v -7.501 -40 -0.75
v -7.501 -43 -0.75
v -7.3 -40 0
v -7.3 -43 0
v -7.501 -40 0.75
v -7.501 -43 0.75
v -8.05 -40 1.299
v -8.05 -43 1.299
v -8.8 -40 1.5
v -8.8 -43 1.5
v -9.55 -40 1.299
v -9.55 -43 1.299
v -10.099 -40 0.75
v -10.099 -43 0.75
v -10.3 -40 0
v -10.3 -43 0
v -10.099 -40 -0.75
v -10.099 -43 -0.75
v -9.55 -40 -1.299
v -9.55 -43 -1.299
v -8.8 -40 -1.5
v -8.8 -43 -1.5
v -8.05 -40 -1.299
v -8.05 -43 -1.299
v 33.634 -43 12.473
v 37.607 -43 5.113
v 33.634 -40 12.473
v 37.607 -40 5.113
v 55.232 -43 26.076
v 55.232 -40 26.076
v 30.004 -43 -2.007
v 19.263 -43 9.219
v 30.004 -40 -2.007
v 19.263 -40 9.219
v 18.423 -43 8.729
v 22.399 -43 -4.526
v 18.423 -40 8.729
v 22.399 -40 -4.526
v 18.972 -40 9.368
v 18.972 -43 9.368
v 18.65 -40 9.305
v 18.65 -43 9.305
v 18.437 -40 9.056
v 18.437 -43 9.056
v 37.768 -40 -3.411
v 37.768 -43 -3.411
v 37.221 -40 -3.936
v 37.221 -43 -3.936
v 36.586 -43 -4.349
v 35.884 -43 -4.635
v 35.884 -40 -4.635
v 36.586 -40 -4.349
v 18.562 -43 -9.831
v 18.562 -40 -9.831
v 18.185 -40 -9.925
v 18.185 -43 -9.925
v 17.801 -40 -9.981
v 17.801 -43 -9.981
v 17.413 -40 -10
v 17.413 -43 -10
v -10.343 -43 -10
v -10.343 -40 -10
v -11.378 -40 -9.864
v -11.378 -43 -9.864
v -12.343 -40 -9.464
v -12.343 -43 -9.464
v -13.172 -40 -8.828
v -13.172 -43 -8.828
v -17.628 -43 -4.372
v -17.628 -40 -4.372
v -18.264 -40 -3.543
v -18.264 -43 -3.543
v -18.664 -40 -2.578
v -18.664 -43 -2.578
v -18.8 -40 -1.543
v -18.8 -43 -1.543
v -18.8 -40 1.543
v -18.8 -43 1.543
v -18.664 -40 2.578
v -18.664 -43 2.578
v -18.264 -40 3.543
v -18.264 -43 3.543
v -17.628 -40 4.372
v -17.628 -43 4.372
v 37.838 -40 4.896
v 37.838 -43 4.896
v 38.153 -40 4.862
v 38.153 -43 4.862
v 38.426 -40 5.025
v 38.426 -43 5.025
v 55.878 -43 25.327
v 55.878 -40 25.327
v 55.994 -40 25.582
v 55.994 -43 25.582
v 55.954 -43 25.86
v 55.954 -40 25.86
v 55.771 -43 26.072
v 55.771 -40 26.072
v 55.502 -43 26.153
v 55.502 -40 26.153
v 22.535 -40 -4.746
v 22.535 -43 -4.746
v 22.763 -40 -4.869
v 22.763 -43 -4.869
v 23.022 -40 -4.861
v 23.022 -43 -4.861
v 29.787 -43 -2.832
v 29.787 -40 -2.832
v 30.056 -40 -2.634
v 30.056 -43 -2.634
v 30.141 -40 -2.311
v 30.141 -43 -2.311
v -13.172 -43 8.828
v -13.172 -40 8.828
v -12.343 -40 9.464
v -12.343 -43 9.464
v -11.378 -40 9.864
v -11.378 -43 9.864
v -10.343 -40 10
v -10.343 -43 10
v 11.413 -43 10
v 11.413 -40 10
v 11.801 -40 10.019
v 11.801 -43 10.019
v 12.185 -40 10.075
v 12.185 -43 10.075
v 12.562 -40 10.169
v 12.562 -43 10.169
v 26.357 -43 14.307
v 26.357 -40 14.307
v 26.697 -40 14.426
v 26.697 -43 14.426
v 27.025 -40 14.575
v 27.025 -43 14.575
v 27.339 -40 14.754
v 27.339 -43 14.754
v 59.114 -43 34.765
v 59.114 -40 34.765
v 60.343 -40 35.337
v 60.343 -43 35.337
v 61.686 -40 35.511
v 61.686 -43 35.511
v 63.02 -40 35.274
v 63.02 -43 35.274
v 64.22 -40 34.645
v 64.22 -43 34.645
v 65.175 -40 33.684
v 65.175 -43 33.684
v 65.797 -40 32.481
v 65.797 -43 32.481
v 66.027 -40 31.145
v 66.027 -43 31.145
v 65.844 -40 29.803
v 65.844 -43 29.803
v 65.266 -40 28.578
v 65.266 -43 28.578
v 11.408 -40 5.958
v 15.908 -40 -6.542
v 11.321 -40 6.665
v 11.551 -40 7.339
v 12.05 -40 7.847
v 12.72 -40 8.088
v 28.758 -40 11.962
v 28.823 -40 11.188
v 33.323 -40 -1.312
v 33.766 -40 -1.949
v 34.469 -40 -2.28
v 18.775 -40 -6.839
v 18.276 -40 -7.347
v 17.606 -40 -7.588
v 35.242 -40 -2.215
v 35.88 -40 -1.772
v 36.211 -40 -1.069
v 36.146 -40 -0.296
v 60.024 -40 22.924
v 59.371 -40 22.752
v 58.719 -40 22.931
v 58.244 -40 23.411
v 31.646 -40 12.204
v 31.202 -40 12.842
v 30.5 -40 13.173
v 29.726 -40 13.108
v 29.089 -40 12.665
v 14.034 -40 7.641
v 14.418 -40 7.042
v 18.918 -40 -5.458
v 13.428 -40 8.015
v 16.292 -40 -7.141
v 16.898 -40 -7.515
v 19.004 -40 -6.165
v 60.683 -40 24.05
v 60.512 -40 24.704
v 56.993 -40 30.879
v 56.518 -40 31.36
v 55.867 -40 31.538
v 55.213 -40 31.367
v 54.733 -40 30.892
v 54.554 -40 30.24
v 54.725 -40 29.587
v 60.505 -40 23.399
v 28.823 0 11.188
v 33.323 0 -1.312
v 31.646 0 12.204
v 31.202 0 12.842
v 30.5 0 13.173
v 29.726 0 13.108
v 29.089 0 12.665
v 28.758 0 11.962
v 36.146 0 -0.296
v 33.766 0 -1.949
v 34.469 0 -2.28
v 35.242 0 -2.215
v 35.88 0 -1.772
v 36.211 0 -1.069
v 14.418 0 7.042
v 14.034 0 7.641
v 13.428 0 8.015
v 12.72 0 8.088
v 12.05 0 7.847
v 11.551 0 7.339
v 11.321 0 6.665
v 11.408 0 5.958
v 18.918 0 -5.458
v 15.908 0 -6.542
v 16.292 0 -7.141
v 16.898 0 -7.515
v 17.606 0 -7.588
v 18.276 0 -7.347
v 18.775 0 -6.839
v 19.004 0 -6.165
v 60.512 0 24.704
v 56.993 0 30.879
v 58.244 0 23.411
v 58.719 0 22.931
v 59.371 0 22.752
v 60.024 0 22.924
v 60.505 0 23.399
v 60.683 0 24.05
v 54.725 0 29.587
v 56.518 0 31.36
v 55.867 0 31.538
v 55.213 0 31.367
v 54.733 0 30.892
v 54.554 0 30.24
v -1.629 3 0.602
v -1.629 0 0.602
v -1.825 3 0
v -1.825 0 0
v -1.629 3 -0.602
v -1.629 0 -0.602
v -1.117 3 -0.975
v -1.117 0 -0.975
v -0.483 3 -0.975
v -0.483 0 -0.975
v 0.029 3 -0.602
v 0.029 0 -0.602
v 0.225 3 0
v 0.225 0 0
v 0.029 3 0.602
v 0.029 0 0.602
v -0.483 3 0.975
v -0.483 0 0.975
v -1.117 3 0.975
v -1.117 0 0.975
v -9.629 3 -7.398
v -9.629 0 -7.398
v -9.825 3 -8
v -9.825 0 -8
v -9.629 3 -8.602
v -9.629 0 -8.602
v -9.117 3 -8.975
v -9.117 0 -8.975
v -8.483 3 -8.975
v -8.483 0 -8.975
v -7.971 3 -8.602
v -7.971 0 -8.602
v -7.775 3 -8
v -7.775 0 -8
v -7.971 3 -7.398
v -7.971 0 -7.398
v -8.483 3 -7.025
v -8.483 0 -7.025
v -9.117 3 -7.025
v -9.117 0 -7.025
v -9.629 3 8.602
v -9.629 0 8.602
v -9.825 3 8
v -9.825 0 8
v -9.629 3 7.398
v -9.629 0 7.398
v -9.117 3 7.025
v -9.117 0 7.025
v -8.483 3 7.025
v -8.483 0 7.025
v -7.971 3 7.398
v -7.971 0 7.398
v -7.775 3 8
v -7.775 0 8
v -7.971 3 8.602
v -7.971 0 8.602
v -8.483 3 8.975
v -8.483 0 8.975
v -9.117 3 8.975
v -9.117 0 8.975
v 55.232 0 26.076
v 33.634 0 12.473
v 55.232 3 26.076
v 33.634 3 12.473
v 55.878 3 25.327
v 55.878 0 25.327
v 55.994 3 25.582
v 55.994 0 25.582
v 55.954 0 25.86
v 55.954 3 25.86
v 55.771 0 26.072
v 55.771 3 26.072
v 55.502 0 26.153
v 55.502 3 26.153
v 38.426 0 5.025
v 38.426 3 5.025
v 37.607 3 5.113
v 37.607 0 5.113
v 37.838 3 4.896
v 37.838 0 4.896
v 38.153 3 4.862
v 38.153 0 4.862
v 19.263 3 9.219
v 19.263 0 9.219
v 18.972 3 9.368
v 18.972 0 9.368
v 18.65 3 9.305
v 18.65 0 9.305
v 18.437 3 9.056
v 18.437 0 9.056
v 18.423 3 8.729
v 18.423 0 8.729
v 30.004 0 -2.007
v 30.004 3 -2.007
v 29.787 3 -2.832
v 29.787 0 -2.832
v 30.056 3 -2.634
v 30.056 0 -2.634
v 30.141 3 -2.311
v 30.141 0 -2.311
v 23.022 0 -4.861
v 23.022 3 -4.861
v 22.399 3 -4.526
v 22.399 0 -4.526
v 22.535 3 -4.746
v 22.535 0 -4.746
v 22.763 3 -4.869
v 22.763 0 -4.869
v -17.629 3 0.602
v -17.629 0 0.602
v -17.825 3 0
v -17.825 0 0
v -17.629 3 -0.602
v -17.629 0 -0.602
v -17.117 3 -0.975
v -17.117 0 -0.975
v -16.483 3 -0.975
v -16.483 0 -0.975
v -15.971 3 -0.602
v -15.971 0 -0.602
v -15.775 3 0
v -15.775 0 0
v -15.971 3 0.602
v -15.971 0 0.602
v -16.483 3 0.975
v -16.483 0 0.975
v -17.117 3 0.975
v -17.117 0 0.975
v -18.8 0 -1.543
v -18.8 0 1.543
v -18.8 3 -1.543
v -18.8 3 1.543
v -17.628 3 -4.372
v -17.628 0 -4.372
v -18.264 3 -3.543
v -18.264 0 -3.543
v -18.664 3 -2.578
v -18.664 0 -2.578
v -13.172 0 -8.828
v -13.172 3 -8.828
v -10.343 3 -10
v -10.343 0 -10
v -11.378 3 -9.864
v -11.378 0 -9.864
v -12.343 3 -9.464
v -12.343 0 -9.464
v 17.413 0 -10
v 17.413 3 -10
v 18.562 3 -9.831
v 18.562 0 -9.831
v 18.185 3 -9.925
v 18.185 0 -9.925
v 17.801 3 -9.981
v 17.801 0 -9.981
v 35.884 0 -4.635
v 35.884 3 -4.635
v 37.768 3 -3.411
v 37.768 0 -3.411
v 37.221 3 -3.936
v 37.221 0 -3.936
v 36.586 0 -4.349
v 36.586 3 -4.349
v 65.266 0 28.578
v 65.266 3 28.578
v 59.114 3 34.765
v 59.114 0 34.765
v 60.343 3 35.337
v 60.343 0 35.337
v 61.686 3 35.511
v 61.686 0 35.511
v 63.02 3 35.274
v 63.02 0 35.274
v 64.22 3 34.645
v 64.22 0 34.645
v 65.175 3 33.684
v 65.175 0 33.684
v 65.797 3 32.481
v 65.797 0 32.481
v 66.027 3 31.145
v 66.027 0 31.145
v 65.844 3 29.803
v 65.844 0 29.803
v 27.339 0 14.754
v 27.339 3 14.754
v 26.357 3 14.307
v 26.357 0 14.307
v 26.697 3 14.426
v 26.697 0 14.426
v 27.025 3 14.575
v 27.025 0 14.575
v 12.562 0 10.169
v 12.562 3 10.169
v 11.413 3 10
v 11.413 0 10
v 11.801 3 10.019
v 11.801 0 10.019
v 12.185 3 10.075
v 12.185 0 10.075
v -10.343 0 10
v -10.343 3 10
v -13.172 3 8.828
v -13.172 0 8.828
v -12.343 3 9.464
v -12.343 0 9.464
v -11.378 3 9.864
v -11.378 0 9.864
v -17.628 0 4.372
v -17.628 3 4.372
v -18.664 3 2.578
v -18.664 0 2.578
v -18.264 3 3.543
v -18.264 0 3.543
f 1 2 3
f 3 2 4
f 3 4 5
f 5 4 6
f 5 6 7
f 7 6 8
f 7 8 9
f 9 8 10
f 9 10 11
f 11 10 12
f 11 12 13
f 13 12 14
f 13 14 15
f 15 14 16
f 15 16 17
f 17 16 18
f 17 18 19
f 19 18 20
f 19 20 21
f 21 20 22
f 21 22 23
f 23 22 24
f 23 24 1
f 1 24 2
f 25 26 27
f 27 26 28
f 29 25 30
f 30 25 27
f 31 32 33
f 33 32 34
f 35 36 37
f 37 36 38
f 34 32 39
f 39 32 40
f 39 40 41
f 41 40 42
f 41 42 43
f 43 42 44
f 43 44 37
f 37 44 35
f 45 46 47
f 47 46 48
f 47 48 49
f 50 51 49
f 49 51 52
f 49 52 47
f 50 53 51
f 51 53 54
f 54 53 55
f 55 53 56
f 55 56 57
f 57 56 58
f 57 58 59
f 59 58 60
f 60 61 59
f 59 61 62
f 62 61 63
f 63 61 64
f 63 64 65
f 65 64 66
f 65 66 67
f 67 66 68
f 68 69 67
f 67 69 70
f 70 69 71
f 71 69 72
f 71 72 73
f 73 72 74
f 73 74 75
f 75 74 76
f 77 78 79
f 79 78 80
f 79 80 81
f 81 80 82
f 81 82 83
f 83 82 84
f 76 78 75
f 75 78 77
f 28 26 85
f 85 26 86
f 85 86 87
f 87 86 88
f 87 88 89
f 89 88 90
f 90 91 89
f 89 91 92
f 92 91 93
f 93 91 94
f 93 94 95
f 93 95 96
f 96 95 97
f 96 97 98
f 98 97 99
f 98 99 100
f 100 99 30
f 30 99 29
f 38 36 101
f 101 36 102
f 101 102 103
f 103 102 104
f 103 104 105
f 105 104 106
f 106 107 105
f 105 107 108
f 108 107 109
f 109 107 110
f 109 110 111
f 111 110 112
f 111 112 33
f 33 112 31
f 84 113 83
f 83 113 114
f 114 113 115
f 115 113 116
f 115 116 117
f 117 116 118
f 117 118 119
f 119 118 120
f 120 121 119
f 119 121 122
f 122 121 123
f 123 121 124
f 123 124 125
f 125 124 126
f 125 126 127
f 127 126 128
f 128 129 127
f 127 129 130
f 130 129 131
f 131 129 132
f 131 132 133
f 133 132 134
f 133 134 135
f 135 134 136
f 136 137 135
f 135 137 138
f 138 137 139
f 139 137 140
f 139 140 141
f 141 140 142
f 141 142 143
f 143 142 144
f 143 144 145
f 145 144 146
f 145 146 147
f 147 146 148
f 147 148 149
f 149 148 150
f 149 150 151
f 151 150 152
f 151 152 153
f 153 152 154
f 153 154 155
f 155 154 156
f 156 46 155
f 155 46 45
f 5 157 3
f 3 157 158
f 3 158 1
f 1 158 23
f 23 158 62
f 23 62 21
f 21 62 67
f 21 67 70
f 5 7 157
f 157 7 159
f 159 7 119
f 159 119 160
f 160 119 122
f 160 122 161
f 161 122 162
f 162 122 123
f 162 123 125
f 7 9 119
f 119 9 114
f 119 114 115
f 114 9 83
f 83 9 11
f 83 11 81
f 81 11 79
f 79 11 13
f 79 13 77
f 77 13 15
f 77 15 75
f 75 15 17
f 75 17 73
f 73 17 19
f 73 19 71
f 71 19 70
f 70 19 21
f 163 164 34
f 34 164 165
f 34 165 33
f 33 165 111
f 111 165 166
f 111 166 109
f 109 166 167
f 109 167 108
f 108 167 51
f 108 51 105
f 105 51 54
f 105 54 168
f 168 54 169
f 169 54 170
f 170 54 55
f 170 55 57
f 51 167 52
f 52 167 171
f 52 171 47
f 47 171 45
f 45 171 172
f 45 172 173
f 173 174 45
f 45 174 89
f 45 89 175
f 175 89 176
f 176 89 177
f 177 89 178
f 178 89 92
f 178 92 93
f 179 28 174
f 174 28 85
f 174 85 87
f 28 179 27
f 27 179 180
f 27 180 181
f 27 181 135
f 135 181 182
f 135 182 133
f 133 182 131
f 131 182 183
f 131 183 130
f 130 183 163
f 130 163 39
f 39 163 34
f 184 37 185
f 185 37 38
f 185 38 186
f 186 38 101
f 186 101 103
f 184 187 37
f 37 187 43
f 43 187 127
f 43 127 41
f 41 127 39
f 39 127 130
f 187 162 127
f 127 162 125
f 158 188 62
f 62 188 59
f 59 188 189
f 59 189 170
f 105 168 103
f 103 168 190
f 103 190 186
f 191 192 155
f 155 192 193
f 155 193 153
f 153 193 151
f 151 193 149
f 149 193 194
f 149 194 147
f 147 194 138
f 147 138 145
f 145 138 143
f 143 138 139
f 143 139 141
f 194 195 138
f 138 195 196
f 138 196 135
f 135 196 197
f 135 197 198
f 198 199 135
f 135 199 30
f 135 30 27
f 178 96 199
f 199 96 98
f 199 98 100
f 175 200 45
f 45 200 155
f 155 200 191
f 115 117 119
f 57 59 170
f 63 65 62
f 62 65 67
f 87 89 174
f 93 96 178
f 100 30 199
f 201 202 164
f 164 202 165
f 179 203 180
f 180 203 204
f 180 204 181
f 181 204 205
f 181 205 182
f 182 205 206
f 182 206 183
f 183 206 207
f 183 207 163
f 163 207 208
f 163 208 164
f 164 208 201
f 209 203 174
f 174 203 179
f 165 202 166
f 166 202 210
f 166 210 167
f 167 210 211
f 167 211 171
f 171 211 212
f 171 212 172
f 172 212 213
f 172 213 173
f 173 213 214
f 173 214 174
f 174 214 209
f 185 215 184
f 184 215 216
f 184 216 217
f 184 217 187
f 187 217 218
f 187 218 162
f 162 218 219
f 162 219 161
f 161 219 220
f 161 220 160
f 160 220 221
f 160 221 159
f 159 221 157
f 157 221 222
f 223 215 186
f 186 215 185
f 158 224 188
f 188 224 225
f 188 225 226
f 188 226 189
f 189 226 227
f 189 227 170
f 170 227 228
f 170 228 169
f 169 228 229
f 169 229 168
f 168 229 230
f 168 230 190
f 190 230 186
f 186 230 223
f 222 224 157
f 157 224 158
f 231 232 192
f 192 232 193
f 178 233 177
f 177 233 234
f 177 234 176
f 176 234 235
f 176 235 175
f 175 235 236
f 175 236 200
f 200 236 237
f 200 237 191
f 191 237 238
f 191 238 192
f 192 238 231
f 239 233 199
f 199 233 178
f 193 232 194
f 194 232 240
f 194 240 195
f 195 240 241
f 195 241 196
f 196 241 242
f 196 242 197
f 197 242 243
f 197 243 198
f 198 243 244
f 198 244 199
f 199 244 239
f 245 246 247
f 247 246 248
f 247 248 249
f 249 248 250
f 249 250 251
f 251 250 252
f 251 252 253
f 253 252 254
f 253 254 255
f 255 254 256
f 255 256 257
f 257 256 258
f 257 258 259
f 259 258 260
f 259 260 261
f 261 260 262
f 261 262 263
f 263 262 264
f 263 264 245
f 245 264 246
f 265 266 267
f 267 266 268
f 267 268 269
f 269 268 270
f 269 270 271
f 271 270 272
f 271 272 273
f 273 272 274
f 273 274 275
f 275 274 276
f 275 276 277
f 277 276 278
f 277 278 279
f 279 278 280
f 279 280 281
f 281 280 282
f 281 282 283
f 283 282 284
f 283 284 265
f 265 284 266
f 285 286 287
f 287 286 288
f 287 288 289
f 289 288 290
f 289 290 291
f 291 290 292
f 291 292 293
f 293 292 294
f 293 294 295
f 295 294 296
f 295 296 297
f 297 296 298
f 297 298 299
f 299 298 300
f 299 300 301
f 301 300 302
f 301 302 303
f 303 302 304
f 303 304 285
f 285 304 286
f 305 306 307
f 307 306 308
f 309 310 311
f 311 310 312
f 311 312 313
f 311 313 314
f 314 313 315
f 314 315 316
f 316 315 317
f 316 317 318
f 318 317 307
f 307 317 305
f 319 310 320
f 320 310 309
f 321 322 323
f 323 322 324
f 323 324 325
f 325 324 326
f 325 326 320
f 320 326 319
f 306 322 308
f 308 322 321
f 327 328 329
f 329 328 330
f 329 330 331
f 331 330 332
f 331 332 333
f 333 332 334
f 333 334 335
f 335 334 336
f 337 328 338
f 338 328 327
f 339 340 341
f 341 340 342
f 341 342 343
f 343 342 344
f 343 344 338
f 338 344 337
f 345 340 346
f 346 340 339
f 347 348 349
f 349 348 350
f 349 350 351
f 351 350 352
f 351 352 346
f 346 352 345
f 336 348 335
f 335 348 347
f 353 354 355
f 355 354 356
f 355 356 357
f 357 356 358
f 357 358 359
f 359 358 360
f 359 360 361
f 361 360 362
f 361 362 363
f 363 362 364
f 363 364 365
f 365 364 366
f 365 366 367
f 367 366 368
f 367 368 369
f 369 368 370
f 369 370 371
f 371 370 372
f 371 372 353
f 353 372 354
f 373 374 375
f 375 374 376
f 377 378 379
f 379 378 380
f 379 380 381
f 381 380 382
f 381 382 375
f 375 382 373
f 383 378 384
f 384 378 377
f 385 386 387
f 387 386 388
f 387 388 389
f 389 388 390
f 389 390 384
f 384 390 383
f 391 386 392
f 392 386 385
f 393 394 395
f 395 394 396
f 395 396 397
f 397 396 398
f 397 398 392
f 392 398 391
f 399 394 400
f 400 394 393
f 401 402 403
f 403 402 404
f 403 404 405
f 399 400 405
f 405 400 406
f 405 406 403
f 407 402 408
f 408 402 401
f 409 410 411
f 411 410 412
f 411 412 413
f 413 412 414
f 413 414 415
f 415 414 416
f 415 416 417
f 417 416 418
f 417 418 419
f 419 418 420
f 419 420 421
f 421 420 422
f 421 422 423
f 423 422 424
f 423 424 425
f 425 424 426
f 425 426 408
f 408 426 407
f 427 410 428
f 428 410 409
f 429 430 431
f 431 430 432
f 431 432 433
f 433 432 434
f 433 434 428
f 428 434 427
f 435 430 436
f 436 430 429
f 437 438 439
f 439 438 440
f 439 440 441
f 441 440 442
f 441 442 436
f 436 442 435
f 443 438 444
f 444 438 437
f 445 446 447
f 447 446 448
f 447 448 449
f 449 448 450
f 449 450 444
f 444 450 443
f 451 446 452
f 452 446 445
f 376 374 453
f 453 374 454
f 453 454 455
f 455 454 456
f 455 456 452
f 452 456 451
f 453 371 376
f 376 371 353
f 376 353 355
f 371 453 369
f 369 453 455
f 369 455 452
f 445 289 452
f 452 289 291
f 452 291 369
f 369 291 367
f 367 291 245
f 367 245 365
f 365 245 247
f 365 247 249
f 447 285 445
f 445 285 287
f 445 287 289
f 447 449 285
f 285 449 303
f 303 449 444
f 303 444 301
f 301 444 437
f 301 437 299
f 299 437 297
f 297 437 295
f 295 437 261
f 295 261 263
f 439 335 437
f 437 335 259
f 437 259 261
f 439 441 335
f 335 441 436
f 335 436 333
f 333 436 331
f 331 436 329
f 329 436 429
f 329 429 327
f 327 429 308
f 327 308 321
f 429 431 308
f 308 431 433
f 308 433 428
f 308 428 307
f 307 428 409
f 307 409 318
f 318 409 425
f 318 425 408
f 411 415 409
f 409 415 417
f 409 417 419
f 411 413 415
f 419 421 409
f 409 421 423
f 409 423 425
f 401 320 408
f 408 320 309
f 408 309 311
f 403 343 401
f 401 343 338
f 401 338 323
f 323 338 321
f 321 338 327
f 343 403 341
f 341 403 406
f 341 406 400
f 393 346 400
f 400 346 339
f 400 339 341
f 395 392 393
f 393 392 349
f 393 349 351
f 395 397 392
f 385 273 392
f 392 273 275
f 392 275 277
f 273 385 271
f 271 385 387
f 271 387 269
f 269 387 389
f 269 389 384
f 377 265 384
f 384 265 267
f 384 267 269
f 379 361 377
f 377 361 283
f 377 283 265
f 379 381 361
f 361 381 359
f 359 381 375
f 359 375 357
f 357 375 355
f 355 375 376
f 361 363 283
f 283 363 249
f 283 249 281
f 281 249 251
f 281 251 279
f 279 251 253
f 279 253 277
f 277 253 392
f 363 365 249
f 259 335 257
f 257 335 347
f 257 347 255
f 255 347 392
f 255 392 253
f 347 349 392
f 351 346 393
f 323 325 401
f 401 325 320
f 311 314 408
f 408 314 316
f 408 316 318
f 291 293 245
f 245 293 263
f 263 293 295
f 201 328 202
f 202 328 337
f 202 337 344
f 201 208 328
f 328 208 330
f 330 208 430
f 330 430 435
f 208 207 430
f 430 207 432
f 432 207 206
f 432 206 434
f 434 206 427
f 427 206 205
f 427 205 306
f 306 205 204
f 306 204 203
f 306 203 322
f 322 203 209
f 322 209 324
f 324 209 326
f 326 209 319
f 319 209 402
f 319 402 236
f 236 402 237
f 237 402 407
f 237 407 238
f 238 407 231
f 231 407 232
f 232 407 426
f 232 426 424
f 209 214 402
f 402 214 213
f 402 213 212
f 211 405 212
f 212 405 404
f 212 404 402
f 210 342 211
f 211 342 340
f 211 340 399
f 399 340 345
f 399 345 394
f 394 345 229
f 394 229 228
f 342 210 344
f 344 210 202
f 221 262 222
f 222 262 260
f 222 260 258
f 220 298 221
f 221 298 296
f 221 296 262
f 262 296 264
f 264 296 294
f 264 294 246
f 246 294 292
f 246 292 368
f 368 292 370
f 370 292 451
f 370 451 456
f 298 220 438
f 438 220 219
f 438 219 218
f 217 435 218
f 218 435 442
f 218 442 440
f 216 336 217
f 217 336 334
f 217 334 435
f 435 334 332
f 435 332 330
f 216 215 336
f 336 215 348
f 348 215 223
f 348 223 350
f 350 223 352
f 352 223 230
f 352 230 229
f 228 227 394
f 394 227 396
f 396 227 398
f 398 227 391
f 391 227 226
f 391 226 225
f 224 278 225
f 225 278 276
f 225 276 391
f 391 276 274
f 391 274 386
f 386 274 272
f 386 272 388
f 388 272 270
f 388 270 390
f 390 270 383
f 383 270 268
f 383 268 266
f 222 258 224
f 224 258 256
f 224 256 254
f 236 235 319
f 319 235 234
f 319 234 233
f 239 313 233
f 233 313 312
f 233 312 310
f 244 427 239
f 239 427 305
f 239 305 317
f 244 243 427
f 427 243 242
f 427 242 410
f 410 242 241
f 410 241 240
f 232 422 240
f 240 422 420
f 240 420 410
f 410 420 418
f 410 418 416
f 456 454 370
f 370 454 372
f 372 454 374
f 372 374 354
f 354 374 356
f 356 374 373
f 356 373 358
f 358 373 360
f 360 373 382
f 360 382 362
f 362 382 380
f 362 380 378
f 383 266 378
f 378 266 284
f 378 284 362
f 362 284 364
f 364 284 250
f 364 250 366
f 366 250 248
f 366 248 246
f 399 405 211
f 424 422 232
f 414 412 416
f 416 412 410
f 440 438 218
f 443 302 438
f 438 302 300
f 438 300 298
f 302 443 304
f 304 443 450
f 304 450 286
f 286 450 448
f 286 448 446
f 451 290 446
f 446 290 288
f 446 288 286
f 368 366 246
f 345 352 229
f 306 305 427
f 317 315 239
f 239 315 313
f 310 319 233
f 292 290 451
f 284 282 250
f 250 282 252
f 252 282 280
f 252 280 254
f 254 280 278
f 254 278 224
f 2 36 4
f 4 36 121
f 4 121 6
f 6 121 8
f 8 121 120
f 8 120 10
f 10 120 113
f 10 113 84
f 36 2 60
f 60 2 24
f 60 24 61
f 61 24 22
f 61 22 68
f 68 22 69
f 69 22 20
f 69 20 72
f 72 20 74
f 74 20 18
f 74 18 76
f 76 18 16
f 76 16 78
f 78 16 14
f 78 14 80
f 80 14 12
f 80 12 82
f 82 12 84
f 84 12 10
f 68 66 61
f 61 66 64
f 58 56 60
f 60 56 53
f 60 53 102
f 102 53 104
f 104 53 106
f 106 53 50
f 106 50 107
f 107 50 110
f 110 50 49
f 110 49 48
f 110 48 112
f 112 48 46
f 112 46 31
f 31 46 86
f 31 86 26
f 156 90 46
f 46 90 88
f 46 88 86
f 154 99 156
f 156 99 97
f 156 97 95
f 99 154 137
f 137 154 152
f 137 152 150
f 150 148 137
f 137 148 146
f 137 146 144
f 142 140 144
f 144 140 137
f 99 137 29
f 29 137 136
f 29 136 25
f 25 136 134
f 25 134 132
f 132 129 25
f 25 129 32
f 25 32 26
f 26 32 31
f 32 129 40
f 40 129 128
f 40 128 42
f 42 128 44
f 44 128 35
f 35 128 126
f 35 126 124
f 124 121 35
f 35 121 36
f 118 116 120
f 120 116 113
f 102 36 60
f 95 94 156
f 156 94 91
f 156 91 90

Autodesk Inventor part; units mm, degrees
ref_plane "YZ Plane" through (0, 0, 0) normal (1, 0, 0) x (0, 1, 0)
ref_plane "XZ Plane" through (0, 0, 0) normal (0, 1, 0) x (-1, 0, 0)
ref_plane "XY Plane" through (0, 0, 0) normal (0, 0, 1) x (1, 0, 0)
sketch "Sketch1" plane through (0, 0, 0) normal (0, 1, 0) x (-1, 0, 0)
  line L0 (-11.4129, 10) -> (10.3431, 10)
  line L1 (20, 2) -> (20, -2)
  line L2 (10.3431, -10) -> (-17.4129, -10)
  line L3 (-20, -10) -> (-20, 10)
  line L4 (20, -10) -> (-20, 10) construction
  line L5 (20, 10) -> (-20, -10) construction
  line L6 (13.1716, -8.8284) -> (17.6284, -4.3716)
  line L7 (13.1716, 8.8284) -> (17.6284, 4.3716)
  line L8 (18.8, 1.5431) -> (18.8, -1.5431)
  arc A0 (18.8, 1.5431) -> (17.6284, 4.3716) centre (14.8, 1.5431) ccw
  arc A1 (17.6284, -4.3716) -> (18.8, -1.5431) centre (14.8, -1.5431) ccw
  arc A2 (13.1716, 8.8284) -> (10.3431, 10) centre (10.3431, 6) ccw
  arc A3 (10.3431, -10) -> (13.1716, -8.8284) centre (10.3431, -6) ccw
  line L9 (-18, -10) -> (-12, 10)
  line L10 (-12.5623, 10.1687) -> (-26.3566, 14.307)
  line L11 (-33.8781, 16.5634) -> (-39.8781, -3.4366)
  line L12 (-35.8836, -4.6349) -> (-18.5623, -9.8313)
  line L13 (-26.8781, 14.4634) -> (-37.0046, -4.2986)
  line L14 (-27.3388, 14.7536) -> (-59.1142, 34.7654)
  line L15 (-37.7675, -3.4111) -> (-65.2661, 28.5779)
  arc A4 (-12.5623, 10.1687) -> (-11.4129, 10) centre (-11.4129, 14) ccw
  arc A5 (-18.5623, -9.8313) -> (-17.4129, -10) centre (-17.4129, -6) ccw
  arc A6 (-27.3388, 14.7536) -> (-26.3566, 14.307) centre (-25.2072, 18.1383) ccw
  arc A7 (-37.7675, -3.4111) -> (-35.8836, -4.6349) centre (-34.7342, -0.8036) ccw
  arc A8 (-59.1142, 34.7654) -> (-65.2661, 28.5779) centre (-61.5814, 31.0663) ccw
  line L16 (18.8, 0) -> (8.8, 0)
  circle A9 centre (0.8, 0) radius 1.025
  circle A10 centre (8.8, -8) radius 1.025
  circle A11 centre (16.8, 0) radius 1.025
  circle A12 centre (8.8, 8) radius 1.025
  line L17 (-23.0219, -4.861) -> (-29.7868, -2.8316)
  line L18 (-22.3993, -4.5258) -> (-18.4228, 8.7292)
  line L19 (-19.263, 9.2186) -> (-30.0044, -2.007)
  arc A13 (-23.0219, -4.861) -> (-22.3993, -4.5258) centre (-22.8782, -4.3821) ccw
  arc A14 (-30.0044, -2.007) -> (-29.7868, -2.8316) centre (-29.6432, -2.3526) ccw
  arc A15 (-18.4228, 8.7292) -> (-19.263, 9.2186) centre (-18.9017, 8.8729) ccw
  line L20 (-37.6066, 5.1132) -> (-33.634, 12.4734)
  line L21 (-33.634, 12.4734) -> (-55.2323, 26.0758)
  line L22 (-55.8779, 25.3268) -> (-38.4257, 5.0247)
  arc A16 (-38.4257, 5.0247) -> (-37.6066, 5.1132) centre (-38.0466, 5.3506) ccw
  arc A17 (-55.2323, 26.0758) -> (-55.8779, 25.3268) centre (-55.4988, 25.6528) ccw
  point P0 (0, 0)
  point P1 (0, 0)
  point P2 (12, -10)
  point P3 (12, 10)
  point P4 (20, 10)
  point P5 (18.8, 3.2)
  point P6 (18.8, -3.2)
  point P7 (-37.9518, 4.4734)
  point P8 (-35.6203, 8.7933)
  dimension "d0" = 40
  dimension "d1" = 20
  dimension "d32" = 8
  dimension "d33" = 8
  dimension "d34" = 8
  dimension "d35" = 8
  dimension "d43" = 1.2
  dimension "d46" = 4
  dimension "d47" = 2
  dimension "d48" = 8
  dimension "d49" = 3
  dimension "d50" = 7
  dimension "d51" = 43.3541
  dimension "d52" = 32.617
  dimension "d53" = 4
  dimension "d54" = 10
  dimension "d55" = 2.05
  dimension "d56" = 8
  dimension "d59" = 360
  dimension "d79" = 0.5
  dimension "d80" = 8
  dimension "d81" = 5
  dimension "d82" = 5
  dimension "d83" = 0.5
extrude "Extrusion1" add sketch "Sketch1" along normal blind 3
sketch "Sketch8" plane through (0, 0, 0) normal (0, -1, 0) x (1, 0, 0)
  arc A0 (17.4129, -10) -> (18.5623, -9.8313) centre (17.4129, -6) ccw projected
  line L0 (-13.1716, -8.8284) -> (-17.6284, -4.3716) projected
  arc A1 (35.8836, -4.6349) -> (37.7675, -3.4111) centre (34.7342, -0.8036) ccw projected
  circle A2 centre (34.7342, -0.8036) radius 1.5
  circle A3 centre (30.2342, 11.6964) radius 1.5
  line L1 (65.2661, 28.5779) -> (37.7675, -3.4111) projected
  line L2 (27.3388, 14.7536) -> (59.1142, 34.7654) projected
  line L3 (15.9075, -6.542) -> (11.4075, 5.958)
  line L4 (14.4183, 7.042) -> (18.9183, -5.458)
  arc A4 (15.9075, -6.542) -> (18.9183, -5.458) centre (17.4129, -6) ccw
  arc A5 (14.4183, 7.042) -> (11.4075, 5.958) centre (12.9129, 6.5) ccw
  line L5 (34.7342, -0.8036) -> (30.2342, 11.6964) construction
  line L6 (36.1456, -0.2955) -> (31.6456, 12.2045)
  line L7 (28.8229, 11.1883) -> (33.3229, -1.3117)
  arc A6 (33.3229, -1.3117) -> (36.1456, -0.2955) centre (34.7342, -0.8036) ccw
  arc A7 (31.6456, 12.2045) -> (28.8229, 11.1883) centre (30.2342, 11.6964) ccw
  line L8 (59.3782, 24.0575) -> (55.8591, 30.2331) construction
  line L9 (60.5121, 24.7036) -> (56.993, 30.8792)
  line L10 (54.7253, 29.587) -> (58.2444, 23.4114)
  arc A8 (58.2444, 23.4114) -> (60.5121, 24.7036) centre (59.3782, 24.0575) ccw
  arc A9 (56.993, 30.8792) -> (54.7253, 29.587) centre (55.8591, 30.2331) ccw
  point P0 (0, 0)
  point P1 (17.9938, -9.9576)
  point P2 (15.1629, 0.25)
  point P3 (32.4842, 5.4464)
  point P4 (57.6187, 27.1453)
  dimension "d64" = 3
  dimension "d69" = 3
  dimension "d70" = 4.5
  dimension "d71" = 12.5
  dimension "d88" = 1.6
extrude "Extrusion7" add sketch "Sketch8" along normal blind 40
extrude "Extrusion8" add sketch "Sketch1" against normal blind 3 from surface at -40 contours A11 L16 | L16 A11 | L0 A2 L7 A0 L8 A1 L6 A3 L2 A5 L12 A7 L15 A8 L14 A6 L10 A4 | A9 | A10 | A12
sketch "Sketch10" plane through (-10.3431, -43, -10) normal (0, -1, 0) x (1, 0, 0)
  line L0 (-8.4569, 8.4569) -> (-8.4569, 11.5431) projected
  line L1 (-8.4569, 10) -> (1.5431, 10)
  circle A0 centre (1.5431, 10) radius 1.5
  point P0 (10.3431, 10)
  dimension "d84" = 10
  dimension "d85" = 3
extrude "Extrusion9" cut sketch "Sketch10" against normal blind 3
equation "\"d33\" = d32"
equation "\"d34\" = d32"
equation "\"d35\" = d34"
properties part number "leg_part"
